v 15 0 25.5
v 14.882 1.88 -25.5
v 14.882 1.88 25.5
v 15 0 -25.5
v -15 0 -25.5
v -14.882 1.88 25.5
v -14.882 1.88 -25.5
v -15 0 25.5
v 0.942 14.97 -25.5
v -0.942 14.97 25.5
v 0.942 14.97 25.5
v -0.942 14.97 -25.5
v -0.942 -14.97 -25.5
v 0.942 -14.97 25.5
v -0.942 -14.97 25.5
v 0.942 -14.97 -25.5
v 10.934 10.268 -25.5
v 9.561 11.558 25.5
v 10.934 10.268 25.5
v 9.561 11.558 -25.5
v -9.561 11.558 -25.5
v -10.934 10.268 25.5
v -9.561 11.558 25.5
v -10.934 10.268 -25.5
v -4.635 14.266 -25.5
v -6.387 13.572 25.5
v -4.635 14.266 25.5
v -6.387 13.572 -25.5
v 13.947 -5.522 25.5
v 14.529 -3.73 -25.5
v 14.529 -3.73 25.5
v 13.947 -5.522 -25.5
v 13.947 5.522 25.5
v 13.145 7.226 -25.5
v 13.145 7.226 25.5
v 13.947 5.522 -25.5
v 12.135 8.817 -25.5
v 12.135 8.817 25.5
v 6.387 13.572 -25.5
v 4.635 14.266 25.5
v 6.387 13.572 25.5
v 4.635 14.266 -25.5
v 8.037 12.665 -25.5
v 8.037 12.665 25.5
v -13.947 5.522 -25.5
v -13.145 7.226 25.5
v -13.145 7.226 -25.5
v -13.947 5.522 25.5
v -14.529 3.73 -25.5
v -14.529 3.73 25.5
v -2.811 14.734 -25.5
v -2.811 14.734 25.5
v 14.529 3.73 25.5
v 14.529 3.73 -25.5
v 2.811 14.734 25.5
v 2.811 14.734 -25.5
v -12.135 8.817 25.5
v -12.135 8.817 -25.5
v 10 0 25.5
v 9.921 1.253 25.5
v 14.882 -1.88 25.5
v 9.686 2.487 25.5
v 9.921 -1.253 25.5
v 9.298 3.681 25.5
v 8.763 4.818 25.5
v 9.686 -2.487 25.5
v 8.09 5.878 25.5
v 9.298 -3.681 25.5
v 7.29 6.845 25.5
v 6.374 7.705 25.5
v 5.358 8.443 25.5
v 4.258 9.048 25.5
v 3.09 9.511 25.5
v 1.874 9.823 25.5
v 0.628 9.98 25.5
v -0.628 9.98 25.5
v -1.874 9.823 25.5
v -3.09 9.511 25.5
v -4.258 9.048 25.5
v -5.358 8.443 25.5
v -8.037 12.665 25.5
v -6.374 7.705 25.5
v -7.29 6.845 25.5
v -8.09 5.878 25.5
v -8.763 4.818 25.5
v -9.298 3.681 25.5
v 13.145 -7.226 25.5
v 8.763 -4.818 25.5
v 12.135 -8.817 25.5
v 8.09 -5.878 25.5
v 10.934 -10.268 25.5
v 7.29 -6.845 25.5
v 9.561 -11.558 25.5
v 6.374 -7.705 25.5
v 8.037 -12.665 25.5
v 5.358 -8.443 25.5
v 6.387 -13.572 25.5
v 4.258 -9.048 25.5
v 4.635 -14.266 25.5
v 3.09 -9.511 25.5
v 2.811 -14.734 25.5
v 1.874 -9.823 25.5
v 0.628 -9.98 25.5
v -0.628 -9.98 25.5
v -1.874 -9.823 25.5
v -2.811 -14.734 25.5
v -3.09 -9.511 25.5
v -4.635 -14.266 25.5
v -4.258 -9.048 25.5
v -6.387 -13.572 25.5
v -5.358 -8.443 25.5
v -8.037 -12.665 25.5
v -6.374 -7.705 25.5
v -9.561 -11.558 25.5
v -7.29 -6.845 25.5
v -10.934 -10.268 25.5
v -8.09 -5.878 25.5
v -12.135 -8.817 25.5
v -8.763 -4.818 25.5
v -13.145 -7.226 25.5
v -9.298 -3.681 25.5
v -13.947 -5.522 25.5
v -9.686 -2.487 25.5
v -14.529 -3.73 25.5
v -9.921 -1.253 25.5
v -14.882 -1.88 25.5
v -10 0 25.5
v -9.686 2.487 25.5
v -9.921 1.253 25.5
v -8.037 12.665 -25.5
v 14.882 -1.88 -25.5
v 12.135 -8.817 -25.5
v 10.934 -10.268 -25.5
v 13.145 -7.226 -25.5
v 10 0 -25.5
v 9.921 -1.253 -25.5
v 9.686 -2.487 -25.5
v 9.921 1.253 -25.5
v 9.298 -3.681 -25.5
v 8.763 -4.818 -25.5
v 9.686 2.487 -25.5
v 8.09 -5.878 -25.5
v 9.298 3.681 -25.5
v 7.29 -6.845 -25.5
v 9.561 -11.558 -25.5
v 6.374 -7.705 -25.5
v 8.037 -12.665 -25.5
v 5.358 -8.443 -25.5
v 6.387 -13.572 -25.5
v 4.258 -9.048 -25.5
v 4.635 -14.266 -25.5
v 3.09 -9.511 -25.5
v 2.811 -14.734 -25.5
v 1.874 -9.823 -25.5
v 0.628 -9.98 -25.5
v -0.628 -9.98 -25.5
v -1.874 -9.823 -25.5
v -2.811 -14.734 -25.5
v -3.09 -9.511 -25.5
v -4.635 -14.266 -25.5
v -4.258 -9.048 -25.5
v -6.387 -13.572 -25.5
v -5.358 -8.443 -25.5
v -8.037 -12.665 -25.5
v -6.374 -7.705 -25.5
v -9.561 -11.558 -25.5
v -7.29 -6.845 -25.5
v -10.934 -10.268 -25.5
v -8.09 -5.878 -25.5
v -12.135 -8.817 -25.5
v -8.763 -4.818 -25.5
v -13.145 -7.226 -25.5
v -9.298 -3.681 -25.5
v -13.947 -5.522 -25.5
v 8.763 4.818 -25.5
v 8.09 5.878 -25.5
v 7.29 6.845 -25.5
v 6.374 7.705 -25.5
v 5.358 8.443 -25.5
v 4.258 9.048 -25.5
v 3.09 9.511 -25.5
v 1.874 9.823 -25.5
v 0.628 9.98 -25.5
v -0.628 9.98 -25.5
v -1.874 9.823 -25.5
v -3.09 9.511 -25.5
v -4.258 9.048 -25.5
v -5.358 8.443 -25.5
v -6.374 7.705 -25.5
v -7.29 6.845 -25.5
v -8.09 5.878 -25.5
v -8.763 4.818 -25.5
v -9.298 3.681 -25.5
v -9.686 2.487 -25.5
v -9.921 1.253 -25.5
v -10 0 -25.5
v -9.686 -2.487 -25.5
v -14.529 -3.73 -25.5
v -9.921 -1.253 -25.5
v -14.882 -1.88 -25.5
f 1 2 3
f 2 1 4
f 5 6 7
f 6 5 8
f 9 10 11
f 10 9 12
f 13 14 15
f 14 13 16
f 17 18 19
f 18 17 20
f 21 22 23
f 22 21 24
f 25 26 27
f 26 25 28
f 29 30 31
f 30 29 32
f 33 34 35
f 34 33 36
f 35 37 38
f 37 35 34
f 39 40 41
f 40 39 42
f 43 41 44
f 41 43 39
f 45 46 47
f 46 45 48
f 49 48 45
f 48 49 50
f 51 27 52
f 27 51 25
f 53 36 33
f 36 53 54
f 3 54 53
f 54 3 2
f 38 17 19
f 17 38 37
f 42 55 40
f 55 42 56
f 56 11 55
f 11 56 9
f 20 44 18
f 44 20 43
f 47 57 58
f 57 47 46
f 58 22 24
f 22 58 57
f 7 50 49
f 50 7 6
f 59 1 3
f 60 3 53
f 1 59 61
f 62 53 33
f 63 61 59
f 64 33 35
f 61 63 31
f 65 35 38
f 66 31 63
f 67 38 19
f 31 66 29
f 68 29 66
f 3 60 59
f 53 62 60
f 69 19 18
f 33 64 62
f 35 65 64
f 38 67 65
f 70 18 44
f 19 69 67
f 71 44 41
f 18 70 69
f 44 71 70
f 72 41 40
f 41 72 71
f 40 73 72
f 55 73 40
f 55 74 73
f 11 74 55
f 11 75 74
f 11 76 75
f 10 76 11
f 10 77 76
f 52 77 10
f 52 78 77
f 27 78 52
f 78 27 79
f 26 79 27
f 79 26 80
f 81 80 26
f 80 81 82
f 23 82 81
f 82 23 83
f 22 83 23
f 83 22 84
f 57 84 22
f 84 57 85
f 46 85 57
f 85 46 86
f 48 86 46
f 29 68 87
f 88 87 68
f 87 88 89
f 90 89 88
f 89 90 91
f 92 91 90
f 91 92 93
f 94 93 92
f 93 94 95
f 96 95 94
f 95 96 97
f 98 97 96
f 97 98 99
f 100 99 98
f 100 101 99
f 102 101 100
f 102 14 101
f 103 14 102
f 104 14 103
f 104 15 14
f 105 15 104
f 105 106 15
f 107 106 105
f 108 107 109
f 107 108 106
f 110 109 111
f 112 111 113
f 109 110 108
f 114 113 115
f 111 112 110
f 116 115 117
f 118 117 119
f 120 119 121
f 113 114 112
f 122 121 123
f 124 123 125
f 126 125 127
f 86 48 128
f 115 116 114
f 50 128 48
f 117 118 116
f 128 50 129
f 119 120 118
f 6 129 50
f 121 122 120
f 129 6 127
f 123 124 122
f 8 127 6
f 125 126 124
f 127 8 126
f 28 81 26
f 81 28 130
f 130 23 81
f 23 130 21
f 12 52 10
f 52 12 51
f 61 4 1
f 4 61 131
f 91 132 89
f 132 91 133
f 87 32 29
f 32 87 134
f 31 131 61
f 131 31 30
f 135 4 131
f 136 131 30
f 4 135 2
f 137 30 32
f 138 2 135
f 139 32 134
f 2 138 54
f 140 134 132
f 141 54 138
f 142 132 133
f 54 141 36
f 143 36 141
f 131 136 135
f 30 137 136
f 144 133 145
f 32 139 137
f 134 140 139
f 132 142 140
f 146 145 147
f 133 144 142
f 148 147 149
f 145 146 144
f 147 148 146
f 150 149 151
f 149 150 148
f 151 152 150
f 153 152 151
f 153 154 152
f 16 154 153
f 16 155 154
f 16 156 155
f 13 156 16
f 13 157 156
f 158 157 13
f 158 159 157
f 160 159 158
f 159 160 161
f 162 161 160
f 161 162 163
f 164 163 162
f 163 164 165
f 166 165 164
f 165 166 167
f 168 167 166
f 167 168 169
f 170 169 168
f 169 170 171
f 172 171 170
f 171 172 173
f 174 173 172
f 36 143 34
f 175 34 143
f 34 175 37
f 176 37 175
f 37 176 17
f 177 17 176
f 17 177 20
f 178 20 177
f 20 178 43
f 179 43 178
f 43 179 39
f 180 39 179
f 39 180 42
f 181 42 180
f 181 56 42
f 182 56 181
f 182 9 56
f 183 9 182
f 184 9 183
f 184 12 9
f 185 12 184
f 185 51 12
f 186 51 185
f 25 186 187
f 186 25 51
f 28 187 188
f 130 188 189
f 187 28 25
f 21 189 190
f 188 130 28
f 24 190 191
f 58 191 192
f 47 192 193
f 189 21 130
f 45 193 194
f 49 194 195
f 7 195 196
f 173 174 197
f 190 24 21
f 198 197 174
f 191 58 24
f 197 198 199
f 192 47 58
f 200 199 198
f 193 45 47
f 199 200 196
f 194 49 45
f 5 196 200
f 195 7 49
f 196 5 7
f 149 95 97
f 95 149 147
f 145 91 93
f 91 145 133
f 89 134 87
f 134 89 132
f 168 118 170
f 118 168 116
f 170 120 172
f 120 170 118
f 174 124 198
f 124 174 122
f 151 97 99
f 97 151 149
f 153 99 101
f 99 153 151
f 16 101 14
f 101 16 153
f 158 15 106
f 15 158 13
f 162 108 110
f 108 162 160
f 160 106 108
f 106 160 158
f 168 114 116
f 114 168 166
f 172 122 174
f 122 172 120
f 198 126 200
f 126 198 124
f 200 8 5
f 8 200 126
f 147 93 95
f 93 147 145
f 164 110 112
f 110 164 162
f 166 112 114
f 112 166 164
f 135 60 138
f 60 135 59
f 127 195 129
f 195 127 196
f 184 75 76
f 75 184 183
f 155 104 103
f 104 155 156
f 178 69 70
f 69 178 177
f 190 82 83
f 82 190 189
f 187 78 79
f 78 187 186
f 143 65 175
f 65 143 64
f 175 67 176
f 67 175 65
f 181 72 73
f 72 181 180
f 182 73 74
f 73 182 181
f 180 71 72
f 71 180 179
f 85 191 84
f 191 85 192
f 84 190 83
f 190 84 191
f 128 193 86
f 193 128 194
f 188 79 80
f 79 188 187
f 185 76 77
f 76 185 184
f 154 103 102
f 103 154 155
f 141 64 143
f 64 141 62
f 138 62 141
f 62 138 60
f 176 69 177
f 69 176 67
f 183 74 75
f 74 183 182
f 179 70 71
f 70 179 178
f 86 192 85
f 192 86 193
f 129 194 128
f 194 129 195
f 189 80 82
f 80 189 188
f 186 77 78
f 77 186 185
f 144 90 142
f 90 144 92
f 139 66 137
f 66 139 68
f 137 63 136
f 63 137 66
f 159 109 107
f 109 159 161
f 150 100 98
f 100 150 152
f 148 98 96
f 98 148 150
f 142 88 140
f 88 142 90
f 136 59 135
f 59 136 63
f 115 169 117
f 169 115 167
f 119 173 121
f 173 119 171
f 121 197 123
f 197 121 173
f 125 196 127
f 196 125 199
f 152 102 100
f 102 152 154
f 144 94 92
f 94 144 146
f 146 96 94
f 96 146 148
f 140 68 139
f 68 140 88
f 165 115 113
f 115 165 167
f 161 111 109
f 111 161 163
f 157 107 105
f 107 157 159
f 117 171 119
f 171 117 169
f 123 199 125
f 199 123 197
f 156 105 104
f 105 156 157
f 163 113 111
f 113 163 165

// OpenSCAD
$fn = 50;


difference() {
	union() {
		translate(v = [0, 0, -25.5000000000]) {
			cylinder(h = 51, r = 15.0000000000);
		}
	}
	union() {
		translate(v = [0, 0, -100.0000000000]) {
			cylinder(h = 200, r = 10);
		}
	}
}
